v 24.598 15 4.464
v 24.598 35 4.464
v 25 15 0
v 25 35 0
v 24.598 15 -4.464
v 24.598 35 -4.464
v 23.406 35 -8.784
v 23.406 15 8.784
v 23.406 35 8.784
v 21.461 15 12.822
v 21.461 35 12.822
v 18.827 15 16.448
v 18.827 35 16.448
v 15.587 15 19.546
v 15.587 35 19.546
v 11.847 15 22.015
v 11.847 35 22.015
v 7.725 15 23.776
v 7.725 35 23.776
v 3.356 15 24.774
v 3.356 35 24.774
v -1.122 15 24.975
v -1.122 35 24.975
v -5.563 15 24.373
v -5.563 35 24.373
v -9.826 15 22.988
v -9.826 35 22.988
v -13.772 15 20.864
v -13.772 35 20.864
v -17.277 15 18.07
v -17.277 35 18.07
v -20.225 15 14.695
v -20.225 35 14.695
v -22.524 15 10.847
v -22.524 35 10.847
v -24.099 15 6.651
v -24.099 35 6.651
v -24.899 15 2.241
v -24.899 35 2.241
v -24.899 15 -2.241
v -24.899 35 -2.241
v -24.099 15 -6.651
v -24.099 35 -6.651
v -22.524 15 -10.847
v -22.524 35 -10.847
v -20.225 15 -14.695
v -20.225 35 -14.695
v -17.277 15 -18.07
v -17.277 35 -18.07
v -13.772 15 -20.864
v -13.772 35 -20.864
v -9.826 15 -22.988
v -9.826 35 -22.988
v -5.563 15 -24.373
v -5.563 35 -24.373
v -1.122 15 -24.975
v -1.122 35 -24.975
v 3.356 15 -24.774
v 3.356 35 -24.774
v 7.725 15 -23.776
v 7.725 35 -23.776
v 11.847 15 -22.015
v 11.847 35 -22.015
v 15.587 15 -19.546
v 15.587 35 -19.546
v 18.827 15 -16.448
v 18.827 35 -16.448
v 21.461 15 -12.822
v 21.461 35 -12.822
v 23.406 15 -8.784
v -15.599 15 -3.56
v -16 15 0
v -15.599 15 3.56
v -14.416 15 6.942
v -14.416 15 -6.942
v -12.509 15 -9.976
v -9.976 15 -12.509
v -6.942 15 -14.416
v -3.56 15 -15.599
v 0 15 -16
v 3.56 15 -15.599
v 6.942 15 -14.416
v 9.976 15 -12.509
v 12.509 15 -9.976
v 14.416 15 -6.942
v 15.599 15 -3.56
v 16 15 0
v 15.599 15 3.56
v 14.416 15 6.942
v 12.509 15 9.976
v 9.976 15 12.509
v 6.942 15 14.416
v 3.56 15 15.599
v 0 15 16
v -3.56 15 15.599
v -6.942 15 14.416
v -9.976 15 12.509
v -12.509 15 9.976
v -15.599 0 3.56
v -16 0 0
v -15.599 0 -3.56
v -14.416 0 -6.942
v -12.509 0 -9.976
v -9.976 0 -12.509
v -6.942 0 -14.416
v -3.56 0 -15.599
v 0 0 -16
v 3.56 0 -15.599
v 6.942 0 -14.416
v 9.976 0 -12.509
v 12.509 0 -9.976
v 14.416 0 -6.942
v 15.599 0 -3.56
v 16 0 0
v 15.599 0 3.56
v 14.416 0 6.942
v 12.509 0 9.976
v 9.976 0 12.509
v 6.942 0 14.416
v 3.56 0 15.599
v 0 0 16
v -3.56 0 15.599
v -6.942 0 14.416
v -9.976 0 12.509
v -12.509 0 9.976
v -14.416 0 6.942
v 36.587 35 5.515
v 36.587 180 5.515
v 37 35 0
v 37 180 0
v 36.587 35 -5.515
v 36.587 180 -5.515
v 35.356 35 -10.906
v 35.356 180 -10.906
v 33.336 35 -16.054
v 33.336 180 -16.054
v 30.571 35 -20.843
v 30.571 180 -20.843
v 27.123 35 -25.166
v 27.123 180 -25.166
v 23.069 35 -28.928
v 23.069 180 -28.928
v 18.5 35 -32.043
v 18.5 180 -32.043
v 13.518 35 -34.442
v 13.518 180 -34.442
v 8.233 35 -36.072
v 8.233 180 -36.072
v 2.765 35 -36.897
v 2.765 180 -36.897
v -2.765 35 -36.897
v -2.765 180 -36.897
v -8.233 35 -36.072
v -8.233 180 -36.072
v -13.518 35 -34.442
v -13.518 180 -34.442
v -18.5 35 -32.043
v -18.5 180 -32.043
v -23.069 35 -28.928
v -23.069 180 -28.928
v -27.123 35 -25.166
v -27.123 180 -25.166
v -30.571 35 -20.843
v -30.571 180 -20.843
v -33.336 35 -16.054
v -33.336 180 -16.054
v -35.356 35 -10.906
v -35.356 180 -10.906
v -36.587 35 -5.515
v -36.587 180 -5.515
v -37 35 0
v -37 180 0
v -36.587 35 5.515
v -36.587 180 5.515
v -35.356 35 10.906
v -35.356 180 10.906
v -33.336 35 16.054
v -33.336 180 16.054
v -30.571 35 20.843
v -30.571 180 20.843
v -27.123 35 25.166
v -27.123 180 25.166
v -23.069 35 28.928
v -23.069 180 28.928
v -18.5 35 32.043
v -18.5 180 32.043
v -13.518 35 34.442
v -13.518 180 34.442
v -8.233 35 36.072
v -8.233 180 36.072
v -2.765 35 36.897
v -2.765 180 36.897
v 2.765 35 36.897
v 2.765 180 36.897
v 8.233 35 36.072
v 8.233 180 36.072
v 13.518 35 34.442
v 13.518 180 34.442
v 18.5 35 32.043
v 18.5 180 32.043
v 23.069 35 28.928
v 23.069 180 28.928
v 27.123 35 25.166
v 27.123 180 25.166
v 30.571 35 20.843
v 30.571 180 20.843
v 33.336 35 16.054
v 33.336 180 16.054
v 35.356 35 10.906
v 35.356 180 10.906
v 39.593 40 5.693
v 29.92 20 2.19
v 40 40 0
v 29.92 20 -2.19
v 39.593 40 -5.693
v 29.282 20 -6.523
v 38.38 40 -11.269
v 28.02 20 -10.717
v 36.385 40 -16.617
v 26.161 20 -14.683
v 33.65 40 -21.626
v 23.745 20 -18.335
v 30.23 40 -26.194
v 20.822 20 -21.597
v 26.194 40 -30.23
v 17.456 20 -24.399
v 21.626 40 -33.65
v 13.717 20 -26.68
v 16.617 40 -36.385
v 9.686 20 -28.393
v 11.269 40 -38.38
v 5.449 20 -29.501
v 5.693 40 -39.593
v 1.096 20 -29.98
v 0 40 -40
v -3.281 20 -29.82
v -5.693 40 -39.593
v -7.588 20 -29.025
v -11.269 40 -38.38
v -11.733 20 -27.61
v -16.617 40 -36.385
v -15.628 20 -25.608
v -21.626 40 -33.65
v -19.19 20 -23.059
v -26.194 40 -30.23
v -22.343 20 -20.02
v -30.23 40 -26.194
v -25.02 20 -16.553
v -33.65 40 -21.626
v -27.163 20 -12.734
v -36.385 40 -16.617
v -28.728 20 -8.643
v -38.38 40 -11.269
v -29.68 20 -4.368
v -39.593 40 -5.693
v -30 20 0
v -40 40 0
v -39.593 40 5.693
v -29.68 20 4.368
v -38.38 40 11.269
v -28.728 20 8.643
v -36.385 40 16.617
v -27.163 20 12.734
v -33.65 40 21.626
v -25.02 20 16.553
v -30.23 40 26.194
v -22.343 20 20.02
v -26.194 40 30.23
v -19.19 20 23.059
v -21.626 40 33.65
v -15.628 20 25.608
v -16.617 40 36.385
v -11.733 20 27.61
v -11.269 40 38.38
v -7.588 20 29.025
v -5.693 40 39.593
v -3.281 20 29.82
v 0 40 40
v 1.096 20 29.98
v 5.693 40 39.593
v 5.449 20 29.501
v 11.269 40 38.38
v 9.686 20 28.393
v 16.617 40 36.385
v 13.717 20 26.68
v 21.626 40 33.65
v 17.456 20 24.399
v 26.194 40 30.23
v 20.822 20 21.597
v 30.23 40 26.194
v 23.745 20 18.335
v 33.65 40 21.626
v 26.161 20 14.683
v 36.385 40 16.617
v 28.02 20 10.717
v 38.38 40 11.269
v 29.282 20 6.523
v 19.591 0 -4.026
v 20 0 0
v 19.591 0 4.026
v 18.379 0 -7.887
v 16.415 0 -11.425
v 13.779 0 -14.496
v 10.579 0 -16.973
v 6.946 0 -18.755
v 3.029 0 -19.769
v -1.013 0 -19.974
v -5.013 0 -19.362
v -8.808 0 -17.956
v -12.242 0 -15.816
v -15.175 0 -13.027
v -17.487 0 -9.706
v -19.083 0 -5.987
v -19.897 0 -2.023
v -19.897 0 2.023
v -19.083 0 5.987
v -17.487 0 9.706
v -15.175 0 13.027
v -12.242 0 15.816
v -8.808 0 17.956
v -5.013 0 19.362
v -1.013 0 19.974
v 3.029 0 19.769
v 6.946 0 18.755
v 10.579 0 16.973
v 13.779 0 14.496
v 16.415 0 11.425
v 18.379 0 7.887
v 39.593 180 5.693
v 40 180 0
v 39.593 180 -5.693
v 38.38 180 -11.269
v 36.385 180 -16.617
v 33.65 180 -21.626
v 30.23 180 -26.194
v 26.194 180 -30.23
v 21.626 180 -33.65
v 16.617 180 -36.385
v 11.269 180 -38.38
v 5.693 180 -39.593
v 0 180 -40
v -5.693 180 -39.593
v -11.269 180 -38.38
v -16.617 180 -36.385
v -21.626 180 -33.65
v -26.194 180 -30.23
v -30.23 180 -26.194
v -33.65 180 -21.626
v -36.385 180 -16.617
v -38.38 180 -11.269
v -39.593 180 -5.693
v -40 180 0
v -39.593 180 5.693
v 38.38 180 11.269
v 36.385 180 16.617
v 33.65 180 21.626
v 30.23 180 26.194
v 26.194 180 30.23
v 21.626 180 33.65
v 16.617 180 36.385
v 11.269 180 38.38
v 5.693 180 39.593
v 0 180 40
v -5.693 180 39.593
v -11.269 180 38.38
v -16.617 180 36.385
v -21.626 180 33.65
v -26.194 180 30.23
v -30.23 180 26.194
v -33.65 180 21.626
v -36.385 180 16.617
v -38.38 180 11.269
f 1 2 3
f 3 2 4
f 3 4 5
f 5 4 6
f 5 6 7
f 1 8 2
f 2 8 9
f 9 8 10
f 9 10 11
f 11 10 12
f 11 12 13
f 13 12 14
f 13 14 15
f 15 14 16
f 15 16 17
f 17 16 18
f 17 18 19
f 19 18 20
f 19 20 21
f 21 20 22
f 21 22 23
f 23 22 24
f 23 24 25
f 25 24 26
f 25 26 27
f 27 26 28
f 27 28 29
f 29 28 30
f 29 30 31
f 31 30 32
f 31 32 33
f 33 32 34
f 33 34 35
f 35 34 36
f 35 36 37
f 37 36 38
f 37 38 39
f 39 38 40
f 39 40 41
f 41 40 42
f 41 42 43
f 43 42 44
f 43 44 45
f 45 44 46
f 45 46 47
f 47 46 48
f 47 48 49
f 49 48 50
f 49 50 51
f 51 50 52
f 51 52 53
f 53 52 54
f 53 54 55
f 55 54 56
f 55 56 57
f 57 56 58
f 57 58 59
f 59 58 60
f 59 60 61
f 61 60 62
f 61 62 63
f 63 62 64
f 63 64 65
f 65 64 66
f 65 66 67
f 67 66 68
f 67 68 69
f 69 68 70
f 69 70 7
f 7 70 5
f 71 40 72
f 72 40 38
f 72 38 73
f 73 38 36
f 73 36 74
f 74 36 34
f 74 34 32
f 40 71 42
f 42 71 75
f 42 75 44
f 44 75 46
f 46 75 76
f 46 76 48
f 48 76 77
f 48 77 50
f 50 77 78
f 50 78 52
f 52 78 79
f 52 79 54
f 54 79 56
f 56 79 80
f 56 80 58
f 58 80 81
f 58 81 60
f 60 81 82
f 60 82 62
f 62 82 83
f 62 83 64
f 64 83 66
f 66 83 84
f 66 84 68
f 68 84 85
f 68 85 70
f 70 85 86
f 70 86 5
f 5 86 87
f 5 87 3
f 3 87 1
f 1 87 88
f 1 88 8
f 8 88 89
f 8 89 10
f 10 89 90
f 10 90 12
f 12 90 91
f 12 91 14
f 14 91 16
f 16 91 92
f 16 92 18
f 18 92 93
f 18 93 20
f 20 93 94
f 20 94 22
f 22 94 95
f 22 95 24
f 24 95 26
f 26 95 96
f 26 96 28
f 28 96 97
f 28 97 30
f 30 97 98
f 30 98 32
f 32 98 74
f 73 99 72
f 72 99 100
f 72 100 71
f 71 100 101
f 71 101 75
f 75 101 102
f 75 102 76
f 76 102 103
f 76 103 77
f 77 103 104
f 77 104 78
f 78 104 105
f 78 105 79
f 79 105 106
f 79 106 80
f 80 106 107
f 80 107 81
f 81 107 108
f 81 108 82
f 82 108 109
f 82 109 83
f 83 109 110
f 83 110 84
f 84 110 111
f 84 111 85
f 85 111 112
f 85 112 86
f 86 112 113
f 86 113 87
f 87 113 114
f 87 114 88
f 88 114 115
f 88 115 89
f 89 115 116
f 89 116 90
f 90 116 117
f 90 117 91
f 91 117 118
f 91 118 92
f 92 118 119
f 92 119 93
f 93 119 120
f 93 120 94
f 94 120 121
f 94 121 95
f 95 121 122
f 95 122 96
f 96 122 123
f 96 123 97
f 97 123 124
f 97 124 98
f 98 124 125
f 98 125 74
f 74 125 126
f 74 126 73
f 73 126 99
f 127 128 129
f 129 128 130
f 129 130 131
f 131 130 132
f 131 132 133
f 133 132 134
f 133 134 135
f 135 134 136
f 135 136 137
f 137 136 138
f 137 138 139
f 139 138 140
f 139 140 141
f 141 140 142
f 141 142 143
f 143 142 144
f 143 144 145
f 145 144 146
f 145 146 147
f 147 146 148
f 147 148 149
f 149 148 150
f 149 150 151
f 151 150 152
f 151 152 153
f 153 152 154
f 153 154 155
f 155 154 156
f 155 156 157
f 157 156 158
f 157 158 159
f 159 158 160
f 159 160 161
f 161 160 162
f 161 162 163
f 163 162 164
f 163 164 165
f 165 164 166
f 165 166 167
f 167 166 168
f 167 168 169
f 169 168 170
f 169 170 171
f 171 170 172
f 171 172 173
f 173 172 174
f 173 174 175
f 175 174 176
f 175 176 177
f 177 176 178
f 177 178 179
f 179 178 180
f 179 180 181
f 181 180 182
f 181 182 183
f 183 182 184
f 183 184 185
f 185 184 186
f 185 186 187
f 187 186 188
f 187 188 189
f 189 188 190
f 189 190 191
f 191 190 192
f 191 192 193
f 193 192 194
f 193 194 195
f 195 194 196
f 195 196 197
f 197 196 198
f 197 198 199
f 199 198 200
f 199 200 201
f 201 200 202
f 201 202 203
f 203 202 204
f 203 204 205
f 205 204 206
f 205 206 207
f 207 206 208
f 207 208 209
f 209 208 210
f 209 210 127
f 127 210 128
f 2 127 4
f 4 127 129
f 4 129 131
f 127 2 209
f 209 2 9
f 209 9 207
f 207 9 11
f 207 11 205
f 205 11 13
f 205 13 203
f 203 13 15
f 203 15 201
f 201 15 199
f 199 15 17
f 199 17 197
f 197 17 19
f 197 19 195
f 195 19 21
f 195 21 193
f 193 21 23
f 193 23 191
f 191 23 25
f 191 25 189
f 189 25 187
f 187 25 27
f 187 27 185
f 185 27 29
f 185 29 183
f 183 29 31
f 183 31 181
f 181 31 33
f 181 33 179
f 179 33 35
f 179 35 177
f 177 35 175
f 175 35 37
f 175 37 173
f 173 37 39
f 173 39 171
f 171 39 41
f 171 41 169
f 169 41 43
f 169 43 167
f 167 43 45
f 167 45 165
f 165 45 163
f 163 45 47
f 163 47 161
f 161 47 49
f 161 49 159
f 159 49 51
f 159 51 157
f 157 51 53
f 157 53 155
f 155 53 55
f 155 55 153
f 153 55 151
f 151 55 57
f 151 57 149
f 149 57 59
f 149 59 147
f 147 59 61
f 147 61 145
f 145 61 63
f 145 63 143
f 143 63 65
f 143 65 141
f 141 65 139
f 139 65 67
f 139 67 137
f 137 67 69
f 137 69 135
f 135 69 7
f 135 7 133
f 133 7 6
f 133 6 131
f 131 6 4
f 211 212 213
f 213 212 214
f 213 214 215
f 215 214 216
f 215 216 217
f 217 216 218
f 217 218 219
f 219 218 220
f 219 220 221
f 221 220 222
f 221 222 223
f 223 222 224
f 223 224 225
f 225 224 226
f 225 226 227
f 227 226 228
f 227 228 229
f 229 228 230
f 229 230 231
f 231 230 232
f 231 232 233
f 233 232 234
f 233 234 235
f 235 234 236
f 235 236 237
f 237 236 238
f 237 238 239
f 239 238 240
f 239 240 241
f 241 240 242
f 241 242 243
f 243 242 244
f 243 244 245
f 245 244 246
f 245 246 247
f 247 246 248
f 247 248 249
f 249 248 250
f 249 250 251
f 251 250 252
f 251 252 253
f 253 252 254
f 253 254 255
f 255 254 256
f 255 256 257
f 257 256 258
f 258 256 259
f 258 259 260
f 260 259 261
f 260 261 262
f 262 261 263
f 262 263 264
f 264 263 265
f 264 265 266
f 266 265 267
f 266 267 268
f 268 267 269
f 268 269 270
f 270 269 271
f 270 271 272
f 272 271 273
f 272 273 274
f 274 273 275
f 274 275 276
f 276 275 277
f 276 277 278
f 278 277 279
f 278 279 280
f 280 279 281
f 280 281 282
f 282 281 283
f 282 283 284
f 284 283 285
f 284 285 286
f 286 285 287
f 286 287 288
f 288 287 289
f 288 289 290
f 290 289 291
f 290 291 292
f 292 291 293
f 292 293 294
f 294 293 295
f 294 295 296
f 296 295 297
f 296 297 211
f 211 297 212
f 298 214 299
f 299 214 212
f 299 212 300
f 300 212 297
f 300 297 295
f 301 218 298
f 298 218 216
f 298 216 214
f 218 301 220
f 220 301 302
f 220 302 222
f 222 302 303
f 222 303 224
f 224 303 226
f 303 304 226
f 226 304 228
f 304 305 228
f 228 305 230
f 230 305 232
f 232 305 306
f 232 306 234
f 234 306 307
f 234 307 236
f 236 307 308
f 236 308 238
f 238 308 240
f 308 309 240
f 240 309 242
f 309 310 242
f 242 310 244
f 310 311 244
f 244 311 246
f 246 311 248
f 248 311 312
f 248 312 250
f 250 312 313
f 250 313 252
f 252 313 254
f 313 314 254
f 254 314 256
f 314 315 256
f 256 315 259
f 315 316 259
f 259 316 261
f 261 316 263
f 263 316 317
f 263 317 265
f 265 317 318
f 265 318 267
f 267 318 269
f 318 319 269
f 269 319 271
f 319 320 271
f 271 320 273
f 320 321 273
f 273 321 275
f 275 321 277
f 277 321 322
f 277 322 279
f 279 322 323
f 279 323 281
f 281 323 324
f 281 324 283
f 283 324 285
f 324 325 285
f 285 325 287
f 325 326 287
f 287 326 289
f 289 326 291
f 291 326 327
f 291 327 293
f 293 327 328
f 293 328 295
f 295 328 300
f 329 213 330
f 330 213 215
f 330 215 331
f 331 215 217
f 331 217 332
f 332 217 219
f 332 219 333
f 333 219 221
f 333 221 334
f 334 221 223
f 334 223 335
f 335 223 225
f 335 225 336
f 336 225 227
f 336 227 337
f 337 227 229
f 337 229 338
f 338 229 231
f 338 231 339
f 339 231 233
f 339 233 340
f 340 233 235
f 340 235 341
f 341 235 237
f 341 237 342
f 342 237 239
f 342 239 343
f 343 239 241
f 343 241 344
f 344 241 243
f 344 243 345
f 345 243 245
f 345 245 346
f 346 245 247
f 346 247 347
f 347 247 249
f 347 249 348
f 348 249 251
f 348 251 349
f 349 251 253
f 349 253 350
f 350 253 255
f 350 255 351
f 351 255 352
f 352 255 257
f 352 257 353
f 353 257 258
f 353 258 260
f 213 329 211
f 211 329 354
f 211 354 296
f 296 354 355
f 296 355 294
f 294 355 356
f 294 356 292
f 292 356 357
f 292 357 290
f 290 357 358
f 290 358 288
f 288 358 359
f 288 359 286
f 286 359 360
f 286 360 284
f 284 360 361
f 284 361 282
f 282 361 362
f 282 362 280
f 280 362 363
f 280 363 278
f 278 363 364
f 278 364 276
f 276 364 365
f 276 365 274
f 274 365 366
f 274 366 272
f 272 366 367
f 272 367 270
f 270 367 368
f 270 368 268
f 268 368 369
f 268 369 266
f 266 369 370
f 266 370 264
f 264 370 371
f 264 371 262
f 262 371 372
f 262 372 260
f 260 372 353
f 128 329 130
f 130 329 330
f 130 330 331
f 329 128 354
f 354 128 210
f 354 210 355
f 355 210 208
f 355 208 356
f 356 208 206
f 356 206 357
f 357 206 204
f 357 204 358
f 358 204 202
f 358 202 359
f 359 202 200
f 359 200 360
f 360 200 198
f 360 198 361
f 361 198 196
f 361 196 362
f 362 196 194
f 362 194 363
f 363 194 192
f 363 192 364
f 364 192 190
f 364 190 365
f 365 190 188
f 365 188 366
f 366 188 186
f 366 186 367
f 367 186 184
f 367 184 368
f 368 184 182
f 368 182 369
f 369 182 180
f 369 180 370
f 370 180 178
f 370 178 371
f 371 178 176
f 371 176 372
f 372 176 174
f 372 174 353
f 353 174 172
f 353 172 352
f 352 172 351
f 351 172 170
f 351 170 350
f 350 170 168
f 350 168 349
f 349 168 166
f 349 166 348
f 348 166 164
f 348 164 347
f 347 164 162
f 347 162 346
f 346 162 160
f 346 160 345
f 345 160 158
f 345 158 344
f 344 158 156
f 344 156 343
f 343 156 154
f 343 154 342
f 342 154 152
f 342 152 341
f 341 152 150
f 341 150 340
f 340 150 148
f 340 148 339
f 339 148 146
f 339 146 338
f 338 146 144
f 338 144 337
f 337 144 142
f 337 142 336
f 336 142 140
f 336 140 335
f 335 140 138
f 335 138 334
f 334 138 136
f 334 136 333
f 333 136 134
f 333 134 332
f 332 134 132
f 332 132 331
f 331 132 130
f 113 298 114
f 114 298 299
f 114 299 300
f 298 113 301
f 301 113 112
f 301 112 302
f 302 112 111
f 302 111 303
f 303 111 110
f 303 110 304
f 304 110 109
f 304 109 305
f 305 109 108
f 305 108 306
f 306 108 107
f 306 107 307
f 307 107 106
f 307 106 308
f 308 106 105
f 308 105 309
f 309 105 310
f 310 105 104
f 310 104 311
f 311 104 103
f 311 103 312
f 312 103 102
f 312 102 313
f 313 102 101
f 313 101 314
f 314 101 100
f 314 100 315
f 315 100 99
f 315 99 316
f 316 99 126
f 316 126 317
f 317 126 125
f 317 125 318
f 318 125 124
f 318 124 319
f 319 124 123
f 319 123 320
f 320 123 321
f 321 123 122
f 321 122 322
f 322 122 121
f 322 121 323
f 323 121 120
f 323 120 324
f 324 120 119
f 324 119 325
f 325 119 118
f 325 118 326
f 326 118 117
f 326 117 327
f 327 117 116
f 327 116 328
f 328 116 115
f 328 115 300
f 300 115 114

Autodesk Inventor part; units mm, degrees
ref_plane "YZ Plane" through (0, 0, 0) normal (1, 0, 0) x (0, 1, 0)
ref_plane "XZ Plane" through (0, 0, 0) normal (0, 1, 0) x (-1, 0, 0)
ref_plane "XY Plane" through (0, 0, 0) normal (0, 0, 1) x (1, 0, 0)
sketch "Sketch1" plane through (0, 0, 0) normal (0, 0, 1) x (1, 0, 0)
  line L0 (0, 180) -> (40, 180)
  line L1 (40, 180) -> (40, 40)
  line L2 (40, 40) -> (20, 0)
  line L3 (20, 0) -> (0, 0)
  line L4 (0, 0) -> (0, 180)
  point P0 (10, 0)
  dimension "d1" = 40
  dimension "d2" = 20
  dimension "d4" = 180
  dimension "d5" = 140
revolve "Revolution1" add sketch "Sketch1" angle 360 about axis through (0, 0, 0) along (0, 1, 0)
sketch "Sketch2" plane through (0, 180, 0) normal (0, 1, 0) x (1, 0, 0)
  circle A0 centre (0, 0) radius 37
  circle A1 centre (0, 0) radius 40 projected
  dimension "d14" = 3
extrude "Extrusion1" cut sketch "Sketch2" against normal blind 145 contours A0
sketch "Sketch3" plane through (0, 0, 0) normal (0, -1, 0) x (1, 0, 0)
  circle A0 centre (0, 0) radius 16
  circle A1 centre (0, 0) radius 20 projected
extrude "Extrusion2" cut sketch "Sketch3" against normal blind 140 contours A0
sketch "Sketch4" plane through (0, 35, 0) normal (0, 1, 0) x (1, 0, 0)
  circle A0 centre (0, 0) radius 25
  dimension "d11" = 50
extrude "Extrusion3" cut sketch "Sketch4" against normal blind 20
sketch "Sketch5" plane through (0, 0, 0) normal (0, -1, 0) x (1, 0, 0)
  point P0 (0, 0)
